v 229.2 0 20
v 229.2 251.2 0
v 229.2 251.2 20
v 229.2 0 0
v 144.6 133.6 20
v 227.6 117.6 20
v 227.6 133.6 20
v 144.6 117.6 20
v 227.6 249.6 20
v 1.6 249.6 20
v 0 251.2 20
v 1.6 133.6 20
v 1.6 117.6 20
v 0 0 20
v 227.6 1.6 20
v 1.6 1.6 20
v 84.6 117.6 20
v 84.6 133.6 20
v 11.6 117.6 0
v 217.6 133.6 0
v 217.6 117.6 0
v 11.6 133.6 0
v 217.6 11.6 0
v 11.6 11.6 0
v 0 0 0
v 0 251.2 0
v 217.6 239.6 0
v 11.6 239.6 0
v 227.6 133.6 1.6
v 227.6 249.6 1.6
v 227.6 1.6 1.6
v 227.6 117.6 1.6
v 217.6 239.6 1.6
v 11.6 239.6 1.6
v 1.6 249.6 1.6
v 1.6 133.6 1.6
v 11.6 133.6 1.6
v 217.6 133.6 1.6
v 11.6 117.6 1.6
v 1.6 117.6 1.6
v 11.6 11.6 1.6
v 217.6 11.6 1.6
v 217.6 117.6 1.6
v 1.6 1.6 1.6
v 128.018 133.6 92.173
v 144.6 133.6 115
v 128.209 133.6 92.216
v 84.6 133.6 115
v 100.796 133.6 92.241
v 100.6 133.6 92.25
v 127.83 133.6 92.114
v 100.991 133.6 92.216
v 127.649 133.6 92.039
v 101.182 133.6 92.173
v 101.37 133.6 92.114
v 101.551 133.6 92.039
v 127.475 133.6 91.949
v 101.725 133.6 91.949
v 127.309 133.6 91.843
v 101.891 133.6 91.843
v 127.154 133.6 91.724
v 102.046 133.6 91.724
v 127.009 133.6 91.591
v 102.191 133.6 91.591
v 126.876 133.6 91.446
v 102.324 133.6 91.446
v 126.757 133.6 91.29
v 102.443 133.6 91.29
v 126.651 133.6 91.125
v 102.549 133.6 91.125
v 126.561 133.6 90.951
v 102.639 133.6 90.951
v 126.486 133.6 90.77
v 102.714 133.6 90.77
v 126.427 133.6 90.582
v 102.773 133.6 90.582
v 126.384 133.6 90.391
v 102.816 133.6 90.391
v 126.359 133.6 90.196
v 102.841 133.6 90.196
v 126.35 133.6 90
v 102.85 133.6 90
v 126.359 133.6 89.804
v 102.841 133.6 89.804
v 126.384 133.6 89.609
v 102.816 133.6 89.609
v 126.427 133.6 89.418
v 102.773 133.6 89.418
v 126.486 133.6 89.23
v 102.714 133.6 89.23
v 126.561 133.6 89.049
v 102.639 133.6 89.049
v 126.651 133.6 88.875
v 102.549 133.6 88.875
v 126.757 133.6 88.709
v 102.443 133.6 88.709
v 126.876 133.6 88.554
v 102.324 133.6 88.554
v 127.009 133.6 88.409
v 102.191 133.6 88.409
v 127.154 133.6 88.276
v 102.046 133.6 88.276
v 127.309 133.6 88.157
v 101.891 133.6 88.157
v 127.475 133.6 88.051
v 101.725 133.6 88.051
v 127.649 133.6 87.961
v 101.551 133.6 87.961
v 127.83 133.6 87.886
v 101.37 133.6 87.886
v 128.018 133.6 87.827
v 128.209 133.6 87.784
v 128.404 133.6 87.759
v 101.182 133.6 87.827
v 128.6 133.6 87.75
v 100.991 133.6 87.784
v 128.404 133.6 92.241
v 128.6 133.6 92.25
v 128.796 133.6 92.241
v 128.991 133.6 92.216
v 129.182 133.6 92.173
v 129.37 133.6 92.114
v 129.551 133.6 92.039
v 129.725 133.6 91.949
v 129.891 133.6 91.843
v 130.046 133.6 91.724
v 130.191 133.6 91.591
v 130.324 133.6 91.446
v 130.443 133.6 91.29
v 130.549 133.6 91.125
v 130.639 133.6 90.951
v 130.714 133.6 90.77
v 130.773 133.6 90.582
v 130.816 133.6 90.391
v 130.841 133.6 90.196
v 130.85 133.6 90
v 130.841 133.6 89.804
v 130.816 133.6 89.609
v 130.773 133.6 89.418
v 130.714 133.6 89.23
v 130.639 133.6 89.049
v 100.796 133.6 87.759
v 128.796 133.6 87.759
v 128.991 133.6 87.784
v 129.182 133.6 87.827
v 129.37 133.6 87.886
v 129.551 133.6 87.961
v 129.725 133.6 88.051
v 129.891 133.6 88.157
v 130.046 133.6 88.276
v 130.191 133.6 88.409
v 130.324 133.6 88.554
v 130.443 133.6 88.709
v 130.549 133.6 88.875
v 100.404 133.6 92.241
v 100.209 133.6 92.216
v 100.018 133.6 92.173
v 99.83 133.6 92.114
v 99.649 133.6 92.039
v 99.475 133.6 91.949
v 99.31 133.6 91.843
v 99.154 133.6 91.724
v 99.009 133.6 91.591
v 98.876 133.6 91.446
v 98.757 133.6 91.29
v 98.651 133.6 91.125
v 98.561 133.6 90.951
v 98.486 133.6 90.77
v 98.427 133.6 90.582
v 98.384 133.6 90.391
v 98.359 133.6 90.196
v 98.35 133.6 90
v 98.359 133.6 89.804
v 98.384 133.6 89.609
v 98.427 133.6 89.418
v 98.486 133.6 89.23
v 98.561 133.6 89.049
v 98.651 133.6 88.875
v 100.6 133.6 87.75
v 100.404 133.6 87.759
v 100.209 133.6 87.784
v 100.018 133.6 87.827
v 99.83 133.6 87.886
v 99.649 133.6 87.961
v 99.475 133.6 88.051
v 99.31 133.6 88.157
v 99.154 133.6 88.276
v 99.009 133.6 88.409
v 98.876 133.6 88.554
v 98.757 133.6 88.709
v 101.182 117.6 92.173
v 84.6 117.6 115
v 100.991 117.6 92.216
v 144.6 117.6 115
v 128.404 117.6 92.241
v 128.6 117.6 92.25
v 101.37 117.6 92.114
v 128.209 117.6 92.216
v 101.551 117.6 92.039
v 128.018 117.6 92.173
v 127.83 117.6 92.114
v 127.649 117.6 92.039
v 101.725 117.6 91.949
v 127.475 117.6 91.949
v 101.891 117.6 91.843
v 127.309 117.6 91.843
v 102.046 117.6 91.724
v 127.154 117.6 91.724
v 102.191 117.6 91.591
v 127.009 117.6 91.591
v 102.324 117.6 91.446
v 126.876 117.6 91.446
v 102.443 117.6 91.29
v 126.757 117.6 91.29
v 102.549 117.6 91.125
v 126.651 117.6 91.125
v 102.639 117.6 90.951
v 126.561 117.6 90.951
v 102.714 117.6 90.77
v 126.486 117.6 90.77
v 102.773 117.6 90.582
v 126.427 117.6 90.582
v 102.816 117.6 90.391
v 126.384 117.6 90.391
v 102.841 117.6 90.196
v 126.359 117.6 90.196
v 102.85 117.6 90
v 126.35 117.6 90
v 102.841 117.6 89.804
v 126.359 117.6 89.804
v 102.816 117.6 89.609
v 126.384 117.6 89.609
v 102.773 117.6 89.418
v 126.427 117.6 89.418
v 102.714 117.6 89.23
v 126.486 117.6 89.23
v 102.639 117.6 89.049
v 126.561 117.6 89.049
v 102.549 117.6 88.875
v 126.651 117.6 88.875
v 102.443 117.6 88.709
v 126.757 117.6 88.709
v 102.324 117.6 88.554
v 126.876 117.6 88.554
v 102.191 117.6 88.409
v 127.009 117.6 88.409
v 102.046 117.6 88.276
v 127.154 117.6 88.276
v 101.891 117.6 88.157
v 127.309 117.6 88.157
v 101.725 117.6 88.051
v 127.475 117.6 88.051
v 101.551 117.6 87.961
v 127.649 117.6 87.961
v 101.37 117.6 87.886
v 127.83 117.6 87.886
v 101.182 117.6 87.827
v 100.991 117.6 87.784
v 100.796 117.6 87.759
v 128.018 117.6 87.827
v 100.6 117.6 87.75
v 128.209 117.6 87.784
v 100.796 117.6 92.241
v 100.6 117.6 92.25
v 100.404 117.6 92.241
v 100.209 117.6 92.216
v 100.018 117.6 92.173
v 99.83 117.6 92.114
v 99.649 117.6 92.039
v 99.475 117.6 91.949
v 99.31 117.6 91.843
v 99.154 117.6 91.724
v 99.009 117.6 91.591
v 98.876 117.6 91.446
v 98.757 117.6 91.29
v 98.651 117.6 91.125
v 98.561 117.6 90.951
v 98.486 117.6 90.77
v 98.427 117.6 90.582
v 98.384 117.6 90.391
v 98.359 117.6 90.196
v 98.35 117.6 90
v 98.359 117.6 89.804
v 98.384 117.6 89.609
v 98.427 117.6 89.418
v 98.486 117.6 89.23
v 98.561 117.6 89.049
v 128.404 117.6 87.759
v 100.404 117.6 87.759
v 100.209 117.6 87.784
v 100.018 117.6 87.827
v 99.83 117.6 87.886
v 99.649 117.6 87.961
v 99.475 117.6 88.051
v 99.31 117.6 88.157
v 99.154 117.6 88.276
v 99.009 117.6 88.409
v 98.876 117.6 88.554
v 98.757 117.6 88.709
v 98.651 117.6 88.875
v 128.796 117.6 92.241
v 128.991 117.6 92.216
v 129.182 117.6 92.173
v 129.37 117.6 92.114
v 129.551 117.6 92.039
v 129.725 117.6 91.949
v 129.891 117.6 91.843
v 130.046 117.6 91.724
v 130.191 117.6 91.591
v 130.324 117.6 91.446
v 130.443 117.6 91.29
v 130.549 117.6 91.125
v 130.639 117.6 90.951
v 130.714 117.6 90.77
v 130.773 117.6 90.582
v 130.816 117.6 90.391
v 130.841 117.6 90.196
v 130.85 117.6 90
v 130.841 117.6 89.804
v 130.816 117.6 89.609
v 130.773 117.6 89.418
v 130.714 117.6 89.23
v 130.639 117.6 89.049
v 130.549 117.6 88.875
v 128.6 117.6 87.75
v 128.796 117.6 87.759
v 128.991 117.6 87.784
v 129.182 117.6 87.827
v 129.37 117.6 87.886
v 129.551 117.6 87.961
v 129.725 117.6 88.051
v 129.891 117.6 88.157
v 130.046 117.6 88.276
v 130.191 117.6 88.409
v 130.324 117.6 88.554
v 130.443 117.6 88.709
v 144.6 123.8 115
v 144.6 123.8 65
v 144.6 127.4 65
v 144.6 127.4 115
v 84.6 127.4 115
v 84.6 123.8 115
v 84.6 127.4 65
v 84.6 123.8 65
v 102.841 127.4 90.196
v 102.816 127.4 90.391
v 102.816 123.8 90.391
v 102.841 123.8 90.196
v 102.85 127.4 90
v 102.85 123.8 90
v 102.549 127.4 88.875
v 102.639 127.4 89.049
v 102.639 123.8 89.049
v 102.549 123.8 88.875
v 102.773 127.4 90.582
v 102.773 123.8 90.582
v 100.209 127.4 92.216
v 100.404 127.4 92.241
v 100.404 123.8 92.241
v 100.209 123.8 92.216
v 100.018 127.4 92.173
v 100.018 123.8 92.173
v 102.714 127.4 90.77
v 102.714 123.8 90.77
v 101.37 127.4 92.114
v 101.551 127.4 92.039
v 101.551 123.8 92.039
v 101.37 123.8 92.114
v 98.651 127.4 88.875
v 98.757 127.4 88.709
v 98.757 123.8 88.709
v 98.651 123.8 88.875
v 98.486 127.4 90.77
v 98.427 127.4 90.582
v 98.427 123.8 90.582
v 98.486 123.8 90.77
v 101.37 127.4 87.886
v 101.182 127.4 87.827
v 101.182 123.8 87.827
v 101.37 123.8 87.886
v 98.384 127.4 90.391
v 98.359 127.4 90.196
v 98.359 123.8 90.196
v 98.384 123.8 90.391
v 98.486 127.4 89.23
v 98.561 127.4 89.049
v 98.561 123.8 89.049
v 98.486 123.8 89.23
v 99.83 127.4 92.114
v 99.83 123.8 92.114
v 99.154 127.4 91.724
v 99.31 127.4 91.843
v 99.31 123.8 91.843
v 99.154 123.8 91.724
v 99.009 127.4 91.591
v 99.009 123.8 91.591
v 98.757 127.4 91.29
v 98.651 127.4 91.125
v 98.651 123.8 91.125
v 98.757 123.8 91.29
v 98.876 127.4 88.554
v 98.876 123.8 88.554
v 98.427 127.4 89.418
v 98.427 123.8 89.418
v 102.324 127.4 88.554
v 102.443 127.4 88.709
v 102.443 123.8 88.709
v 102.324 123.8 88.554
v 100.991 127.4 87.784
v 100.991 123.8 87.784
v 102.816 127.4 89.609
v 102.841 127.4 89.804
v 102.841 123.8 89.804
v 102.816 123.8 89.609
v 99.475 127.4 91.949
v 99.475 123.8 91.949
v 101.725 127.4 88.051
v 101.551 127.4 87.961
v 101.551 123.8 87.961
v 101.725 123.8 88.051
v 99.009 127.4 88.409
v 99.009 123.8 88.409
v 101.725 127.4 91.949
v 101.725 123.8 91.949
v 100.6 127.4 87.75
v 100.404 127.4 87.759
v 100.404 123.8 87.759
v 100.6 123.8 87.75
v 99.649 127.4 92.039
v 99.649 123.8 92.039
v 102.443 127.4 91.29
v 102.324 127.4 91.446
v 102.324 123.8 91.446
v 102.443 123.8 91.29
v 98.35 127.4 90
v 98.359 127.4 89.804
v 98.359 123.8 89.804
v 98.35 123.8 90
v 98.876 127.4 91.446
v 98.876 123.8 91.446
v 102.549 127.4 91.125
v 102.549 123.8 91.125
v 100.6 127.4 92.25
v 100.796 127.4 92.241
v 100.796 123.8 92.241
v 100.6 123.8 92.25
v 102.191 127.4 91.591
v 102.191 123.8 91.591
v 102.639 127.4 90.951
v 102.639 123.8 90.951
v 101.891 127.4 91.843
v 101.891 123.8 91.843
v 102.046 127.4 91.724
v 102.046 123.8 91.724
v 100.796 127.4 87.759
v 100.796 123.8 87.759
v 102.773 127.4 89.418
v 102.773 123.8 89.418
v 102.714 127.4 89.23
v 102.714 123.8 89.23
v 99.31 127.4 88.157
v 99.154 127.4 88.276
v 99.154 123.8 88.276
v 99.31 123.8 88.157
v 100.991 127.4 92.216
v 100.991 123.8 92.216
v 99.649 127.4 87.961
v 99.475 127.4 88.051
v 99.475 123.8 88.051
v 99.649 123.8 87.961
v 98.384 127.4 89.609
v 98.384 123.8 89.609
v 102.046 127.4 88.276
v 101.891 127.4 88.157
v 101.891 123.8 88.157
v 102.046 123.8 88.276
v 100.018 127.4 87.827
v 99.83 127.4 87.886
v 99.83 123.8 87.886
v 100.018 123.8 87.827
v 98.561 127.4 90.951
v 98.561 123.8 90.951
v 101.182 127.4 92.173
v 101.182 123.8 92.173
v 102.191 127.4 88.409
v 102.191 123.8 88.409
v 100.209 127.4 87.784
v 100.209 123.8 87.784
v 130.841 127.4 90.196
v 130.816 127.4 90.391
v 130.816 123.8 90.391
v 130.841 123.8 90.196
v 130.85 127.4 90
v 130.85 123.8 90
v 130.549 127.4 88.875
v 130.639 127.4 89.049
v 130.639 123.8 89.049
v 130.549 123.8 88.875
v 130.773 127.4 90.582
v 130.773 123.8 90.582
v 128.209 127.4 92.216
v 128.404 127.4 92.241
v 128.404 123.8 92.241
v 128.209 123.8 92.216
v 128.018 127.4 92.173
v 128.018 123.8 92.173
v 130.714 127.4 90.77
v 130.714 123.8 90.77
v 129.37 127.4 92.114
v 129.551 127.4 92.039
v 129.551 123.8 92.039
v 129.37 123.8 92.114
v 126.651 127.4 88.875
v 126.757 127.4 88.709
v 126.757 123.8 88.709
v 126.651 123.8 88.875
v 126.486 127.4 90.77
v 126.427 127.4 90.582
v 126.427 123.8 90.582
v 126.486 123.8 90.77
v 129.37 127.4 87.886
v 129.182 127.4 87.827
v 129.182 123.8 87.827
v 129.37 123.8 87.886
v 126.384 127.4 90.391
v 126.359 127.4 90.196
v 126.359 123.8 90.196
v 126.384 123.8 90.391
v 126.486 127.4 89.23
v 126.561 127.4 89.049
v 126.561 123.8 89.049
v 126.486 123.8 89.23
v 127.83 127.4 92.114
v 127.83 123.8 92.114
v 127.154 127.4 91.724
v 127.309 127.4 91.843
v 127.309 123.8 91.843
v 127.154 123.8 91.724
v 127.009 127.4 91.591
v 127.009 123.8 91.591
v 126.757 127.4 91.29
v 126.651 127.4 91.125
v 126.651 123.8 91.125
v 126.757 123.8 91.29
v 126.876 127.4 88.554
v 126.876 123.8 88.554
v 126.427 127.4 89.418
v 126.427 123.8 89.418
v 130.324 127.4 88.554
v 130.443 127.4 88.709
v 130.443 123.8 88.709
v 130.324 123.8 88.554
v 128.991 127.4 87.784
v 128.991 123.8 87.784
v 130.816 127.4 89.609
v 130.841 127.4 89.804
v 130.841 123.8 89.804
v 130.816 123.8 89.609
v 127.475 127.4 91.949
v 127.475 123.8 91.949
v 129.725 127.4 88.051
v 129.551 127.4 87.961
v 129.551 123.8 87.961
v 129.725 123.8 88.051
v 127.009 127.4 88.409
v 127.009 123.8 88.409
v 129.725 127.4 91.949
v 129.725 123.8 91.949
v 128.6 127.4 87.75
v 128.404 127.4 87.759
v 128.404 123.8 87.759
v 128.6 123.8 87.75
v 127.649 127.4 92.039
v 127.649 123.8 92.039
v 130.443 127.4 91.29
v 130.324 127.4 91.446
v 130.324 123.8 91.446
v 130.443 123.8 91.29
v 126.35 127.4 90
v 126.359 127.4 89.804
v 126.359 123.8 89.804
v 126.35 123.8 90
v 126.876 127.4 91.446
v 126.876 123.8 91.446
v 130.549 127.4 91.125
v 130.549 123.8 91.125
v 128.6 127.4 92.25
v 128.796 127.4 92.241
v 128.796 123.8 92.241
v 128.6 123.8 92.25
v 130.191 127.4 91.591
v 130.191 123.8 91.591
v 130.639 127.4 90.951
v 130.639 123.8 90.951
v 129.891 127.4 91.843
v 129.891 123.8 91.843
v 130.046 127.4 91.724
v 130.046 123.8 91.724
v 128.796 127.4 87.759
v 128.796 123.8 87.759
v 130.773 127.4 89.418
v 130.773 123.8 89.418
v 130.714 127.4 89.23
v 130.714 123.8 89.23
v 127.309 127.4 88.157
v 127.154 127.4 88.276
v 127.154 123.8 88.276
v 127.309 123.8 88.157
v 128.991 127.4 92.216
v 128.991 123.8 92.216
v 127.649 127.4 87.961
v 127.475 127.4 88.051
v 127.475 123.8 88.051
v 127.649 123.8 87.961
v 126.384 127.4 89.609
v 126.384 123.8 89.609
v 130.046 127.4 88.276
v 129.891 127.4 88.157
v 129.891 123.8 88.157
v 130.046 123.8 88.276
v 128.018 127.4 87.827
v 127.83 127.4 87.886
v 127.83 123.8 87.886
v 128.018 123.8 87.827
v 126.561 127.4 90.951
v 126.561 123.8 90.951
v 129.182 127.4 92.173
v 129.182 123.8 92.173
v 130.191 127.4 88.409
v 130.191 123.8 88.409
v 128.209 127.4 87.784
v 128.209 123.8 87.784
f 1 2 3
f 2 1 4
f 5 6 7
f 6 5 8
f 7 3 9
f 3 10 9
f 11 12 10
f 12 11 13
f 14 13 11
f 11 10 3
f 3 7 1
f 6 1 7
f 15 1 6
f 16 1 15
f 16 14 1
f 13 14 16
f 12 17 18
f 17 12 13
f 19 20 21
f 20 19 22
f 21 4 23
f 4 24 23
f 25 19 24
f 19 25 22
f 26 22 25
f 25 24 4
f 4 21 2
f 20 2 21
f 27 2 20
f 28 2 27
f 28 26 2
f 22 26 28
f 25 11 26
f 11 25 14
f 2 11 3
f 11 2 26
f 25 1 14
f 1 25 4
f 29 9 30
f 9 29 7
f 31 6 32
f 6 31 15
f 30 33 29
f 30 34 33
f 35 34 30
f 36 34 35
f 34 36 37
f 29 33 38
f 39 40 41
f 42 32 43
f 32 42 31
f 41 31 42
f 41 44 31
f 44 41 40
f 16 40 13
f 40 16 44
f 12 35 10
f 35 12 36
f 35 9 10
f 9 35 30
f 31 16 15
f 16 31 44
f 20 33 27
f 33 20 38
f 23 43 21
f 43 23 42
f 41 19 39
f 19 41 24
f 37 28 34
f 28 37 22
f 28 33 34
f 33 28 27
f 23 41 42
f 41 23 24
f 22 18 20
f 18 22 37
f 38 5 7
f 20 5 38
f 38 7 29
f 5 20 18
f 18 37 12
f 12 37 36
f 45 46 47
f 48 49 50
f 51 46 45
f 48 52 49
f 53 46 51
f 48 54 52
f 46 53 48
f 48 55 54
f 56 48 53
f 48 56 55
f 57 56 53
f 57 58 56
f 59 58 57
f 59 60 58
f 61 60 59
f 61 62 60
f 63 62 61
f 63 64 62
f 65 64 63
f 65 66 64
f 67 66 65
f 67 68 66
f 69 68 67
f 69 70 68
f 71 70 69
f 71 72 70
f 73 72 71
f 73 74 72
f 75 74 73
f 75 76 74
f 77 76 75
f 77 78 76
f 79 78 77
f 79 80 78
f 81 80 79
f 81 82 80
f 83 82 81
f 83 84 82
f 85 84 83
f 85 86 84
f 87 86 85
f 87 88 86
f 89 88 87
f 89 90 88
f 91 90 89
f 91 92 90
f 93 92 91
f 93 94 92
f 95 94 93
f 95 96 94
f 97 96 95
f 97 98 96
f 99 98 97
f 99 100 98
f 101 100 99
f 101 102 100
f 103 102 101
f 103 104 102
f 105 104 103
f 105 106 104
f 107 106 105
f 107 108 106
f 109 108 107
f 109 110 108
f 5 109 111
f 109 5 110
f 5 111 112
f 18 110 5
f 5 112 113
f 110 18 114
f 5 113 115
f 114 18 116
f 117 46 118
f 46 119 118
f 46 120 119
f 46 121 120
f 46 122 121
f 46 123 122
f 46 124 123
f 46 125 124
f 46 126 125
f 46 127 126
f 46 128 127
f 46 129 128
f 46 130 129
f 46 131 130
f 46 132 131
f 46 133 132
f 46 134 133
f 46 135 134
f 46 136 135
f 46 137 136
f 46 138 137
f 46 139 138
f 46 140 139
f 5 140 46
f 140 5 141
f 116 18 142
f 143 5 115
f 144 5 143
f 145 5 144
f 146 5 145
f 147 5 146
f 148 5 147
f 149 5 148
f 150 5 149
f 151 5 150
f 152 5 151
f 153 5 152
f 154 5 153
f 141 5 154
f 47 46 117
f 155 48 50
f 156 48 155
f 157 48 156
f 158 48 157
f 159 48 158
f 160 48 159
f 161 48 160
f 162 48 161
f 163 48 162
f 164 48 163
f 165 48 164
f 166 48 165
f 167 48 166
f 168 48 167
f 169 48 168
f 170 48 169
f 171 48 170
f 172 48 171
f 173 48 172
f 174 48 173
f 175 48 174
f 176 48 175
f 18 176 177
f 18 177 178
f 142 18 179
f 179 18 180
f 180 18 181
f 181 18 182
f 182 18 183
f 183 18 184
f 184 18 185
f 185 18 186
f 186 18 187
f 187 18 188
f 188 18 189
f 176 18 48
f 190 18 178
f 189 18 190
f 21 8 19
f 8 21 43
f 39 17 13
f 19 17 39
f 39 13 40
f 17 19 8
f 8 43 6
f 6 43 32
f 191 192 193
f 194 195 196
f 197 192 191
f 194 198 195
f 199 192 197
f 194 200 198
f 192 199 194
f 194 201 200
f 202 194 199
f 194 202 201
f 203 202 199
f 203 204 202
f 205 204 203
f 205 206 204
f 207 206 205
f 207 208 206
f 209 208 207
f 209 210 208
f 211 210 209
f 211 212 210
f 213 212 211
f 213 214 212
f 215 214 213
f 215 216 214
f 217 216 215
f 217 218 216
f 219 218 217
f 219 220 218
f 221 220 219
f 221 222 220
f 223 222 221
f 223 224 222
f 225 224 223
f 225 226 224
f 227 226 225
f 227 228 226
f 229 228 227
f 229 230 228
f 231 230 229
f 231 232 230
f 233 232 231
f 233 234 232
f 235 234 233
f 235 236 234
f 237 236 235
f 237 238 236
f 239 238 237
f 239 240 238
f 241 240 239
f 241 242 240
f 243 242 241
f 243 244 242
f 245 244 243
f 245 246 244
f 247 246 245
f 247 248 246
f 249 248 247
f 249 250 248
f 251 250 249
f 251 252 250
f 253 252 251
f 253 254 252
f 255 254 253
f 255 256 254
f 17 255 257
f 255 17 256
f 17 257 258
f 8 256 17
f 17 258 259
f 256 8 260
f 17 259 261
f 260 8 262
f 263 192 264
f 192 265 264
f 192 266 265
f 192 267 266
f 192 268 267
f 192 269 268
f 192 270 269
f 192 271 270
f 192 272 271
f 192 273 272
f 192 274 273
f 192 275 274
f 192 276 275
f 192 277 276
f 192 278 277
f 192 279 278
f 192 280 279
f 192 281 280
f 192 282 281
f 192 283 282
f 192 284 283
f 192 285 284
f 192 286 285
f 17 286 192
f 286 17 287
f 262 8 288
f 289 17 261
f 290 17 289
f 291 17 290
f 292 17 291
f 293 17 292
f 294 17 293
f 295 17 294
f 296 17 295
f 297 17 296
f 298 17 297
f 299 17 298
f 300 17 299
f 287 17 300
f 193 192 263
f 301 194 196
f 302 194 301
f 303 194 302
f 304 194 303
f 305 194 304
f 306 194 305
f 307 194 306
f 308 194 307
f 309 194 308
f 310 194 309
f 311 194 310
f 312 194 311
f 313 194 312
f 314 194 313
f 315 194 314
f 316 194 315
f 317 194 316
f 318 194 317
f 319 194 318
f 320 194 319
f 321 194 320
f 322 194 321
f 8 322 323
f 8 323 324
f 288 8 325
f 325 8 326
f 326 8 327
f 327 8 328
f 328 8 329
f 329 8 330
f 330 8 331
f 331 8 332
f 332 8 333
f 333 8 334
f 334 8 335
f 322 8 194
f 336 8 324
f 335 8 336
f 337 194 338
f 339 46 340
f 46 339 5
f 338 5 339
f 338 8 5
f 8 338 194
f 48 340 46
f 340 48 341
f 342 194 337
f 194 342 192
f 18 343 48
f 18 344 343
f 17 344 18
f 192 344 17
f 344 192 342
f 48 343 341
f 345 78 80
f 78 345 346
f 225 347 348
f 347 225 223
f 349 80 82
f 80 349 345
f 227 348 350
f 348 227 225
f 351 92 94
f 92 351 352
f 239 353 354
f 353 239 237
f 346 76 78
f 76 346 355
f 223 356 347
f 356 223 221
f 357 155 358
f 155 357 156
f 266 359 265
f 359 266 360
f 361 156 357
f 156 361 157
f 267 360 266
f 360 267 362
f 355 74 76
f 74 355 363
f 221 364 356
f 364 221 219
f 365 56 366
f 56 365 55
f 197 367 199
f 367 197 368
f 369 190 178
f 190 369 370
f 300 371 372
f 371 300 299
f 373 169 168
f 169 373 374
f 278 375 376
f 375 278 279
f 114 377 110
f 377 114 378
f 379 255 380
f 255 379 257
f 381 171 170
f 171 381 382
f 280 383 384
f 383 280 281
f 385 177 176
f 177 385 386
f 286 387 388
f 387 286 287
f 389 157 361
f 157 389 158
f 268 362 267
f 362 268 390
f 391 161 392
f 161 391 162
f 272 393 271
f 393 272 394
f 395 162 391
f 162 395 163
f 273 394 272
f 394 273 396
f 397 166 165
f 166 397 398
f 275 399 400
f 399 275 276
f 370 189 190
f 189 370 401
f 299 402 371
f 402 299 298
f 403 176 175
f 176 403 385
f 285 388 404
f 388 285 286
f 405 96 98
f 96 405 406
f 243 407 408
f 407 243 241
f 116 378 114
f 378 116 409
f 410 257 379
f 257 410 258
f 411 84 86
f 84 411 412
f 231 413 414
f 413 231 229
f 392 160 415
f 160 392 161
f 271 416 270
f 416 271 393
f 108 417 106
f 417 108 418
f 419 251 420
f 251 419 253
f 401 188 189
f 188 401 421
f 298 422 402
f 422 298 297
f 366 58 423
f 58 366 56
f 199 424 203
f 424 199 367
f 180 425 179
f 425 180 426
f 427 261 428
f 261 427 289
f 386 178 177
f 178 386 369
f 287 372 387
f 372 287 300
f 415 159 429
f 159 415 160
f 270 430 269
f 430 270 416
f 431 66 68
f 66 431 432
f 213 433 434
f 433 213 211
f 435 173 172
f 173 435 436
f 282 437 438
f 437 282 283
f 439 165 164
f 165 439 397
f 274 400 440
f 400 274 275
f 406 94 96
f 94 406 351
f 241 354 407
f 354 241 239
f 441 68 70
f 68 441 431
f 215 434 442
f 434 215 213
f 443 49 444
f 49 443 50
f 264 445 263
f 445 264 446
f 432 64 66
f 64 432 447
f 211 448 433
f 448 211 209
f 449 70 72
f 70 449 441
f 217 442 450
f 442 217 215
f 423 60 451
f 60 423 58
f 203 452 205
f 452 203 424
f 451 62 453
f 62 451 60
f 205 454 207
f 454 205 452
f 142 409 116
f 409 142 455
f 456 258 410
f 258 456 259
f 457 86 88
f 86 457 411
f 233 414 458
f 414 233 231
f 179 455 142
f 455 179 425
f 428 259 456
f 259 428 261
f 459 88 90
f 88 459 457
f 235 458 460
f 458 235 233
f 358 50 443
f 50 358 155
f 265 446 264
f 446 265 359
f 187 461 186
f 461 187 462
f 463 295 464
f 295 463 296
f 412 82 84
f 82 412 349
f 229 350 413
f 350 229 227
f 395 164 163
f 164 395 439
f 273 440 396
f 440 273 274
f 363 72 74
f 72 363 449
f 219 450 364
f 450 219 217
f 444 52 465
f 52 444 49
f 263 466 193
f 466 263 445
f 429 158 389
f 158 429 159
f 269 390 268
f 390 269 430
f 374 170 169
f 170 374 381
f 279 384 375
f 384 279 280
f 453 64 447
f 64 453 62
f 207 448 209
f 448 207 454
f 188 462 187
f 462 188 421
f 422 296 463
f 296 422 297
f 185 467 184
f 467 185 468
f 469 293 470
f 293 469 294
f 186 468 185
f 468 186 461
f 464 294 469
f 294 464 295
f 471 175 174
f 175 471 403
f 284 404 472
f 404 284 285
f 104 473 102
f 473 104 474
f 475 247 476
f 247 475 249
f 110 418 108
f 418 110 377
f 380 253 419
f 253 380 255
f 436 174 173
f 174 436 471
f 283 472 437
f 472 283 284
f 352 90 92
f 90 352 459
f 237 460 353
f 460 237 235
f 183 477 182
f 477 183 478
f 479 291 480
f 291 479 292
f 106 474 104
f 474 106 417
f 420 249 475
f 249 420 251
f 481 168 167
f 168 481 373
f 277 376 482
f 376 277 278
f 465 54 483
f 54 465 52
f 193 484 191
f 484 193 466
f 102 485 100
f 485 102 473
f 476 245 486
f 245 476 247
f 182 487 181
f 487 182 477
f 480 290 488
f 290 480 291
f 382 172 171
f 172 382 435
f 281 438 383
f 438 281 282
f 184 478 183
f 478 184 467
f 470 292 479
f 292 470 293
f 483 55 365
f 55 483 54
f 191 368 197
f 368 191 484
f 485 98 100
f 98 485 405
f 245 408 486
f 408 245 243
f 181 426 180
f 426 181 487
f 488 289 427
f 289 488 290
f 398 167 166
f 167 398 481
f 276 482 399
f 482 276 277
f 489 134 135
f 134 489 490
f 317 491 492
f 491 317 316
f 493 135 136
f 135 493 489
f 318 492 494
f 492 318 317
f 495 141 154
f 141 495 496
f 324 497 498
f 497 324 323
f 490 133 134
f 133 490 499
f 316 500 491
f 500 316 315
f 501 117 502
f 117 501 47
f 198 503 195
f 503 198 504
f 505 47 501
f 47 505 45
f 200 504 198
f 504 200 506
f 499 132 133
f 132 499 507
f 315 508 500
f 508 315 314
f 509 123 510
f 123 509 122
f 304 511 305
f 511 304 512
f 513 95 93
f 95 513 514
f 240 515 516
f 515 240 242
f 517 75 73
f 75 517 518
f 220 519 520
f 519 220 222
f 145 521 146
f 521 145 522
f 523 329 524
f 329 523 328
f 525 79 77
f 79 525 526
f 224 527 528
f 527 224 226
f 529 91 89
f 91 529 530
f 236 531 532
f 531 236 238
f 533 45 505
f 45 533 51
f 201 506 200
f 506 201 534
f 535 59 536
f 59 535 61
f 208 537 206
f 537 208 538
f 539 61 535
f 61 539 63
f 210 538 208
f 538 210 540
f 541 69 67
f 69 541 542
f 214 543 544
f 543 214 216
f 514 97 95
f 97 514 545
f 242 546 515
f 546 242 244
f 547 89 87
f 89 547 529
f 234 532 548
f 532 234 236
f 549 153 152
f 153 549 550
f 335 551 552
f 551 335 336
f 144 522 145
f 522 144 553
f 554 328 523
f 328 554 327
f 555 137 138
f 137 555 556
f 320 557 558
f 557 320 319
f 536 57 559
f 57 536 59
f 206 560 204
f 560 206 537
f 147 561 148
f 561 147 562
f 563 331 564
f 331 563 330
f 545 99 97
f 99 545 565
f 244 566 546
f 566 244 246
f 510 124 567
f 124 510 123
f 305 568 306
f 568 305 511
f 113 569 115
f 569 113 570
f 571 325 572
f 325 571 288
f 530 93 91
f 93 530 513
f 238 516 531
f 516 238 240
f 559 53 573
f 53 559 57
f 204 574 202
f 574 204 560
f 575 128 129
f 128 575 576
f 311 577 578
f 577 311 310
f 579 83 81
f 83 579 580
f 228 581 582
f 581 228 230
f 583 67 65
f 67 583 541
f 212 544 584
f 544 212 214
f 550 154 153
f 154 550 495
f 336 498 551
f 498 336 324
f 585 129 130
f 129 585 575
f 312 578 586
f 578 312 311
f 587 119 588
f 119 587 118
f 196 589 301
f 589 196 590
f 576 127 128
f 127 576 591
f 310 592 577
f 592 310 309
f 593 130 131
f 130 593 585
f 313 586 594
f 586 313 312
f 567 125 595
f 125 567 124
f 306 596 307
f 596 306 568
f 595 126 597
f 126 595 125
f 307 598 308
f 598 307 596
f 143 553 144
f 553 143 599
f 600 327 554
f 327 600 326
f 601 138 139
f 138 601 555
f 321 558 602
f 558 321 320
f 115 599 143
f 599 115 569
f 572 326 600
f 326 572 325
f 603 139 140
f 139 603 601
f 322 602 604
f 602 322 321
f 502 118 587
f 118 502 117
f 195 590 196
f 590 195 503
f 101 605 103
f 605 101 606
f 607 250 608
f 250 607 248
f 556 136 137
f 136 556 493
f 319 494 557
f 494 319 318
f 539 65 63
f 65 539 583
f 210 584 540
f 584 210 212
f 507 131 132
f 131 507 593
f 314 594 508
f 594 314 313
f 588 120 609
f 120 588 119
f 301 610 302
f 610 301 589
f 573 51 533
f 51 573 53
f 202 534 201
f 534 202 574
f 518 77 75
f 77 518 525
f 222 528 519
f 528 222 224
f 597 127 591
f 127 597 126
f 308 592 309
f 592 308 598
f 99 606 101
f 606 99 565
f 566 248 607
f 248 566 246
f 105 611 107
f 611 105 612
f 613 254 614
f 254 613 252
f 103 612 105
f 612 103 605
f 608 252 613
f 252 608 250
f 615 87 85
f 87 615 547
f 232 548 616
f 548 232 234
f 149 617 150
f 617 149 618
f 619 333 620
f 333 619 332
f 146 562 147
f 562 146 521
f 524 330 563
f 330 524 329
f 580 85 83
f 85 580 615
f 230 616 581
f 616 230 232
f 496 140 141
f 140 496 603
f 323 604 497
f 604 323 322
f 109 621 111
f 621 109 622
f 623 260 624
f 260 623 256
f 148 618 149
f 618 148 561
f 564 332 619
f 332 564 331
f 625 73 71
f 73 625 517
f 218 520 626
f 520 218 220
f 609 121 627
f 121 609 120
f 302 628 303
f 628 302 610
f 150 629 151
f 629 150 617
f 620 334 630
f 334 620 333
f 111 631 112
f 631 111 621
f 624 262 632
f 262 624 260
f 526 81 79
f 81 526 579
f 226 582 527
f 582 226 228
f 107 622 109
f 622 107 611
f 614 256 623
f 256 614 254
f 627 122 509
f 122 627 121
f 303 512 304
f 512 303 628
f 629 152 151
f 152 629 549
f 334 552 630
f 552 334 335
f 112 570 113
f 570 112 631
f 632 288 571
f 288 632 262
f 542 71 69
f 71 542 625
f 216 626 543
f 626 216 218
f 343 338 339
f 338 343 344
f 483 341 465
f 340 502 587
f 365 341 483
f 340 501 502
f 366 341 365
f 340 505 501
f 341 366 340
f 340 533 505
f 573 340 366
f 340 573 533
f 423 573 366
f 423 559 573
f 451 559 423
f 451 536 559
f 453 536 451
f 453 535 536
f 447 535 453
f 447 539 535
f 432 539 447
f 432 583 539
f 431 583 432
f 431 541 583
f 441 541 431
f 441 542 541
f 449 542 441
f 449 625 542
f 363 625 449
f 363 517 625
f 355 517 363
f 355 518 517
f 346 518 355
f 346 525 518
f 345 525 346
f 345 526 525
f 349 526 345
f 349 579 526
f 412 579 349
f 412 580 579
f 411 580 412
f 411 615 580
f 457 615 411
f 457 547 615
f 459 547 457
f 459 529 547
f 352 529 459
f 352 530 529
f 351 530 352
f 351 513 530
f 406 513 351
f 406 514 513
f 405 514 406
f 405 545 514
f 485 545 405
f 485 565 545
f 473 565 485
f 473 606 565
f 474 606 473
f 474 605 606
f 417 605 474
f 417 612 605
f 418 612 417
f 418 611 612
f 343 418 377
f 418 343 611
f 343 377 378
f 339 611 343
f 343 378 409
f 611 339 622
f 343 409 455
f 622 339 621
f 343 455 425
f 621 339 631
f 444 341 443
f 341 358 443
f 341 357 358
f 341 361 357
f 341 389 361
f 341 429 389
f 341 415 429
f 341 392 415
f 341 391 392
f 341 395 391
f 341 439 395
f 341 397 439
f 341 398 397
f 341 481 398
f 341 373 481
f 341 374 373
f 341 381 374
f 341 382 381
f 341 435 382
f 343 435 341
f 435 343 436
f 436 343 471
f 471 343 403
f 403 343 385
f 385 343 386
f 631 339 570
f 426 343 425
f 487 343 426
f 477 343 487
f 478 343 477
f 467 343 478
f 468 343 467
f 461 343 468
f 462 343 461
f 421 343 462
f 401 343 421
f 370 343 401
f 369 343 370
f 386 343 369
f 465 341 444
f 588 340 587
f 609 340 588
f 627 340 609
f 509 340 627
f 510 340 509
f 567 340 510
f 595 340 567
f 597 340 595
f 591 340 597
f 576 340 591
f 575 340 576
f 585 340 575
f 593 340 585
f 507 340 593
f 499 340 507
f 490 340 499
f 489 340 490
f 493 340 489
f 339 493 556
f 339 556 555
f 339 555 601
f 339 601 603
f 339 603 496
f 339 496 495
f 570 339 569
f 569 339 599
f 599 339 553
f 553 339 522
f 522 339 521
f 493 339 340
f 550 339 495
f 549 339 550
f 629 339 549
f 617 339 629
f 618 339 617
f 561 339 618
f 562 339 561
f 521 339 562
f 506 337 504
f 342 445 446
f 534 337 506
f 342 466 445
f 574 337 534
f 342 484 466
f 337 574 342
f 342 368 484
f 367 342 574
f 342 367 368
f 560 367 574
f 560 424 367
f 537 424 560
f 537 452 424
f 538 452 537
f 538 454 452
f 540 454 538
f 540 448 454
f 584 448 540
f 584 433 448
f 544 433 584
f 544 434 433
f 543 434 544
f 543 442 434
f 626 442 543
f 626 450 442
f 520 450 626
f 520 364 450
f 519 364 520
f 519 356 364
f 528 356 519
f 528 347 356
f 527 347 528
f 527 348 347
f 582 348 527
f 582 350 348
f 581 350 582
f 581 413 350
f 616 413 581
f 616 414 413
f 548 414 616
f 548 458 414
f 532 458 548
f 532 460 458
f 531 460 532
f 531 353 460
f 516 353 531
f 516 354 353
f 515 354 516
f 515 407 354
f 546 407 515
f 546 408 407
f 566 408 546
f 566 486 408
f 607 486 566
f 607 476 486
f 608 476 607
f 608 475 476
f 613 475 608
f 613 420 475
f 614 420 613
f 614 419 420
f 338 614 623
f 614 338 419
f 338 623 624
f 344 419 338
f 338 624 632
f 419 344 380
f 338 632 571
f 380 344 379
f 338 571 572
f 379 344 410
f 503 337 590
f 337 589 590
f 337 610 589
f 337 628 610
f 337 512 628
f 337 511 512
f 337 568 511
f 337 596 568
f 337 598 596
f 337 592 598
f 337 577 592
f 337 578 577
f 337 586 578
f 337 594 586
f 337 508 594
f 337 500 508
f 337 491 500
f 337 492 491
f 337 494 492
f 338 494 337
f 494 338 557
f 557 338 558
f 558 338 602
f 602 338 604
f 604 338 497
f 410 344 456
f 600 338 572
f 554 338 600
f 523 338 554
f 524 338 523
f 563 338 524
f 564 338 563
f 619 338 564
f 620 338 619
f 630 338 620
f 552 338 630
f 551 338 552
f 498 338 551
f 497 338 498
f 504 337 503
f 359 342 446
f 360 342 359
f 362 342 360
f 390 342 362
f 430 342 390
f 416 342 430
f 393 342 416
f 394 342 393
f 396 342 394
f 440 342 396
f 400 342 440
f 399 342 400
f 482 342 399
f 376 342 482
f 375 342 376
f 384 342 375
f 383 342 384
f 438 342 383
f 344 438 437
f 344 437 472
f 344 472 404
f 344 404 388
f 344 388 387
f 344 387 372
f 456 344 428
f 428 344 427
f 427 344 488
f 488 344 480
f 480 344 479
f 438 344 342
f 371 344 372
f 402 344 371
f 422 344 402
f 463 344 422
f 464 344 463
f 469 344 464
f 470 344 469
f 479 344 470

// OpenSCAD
// file: lib.scad
// Shared pieces for the Winterlight PETG parts (Bambu Lab A1, 256 × 256 × 256 mm).
// Millimetres. Measure your own mounting strip and set strip_w / strip_t on the
// command line (-D strip_w=20) or in OpenSCAD's Customizer before printing.
$fn = 72;
strip_w = 30;   // pixel mounting strip width
strip_t = 1.54; // pixel mounting strip thickness (measured)
clr = 0.4;      // clearance per side, a snug slide fit in PETG
wall = 3;       // channel walls
tie_d = 4.5;    // holes for the 2.5 mm cable ties or an M4 bolt

// Closed slots the strip slides through (the ground strip's posts).
slot_t = strip_t + 2*clr;
slot_w = strip_w + 2*clr;
// Open pockets the strip ends sit in (mini trees, tree hub and ring): a close
// fit across, and a little shallower than the strip, so the strip stands
// proud of the face and the cable tie clamps it down.
proud = 0.3;
pocket_t = strip_t - proud;
pocket_w = strip_w + 2*0.2;
// Outside size of a strip channel: radial depth and tangential width.
ch_depth = pocket_t + wall;
ch_width = pocket_w + 2*wall;

// A channel that holds a strip's end: the strip runs up +Z with its face
// (and its pixels) towards +X. Open on the +X side so the strip drops in,
// with a groove round the outside where a cable tie pulls it home.
module channel(h, floor = 3) {
  z0 = h*0.55;
  difference() {
    translate([-ch_depth, -ch_width/2, 0]) cube([ch_depth, ch_width, h]);
    translate([-pocket_t, -pocket_w/2, floor]) cube([pocket_t + 1, pocket_w, h]);
    // Tie groove, 1 mm deep, round the back and both sides.
    difference() {
      translate([-ch_depth - 1, -ch_width/2 - 1, z0]) cube([ch_depth + 2, ch_width + 2, 5]);
      translate([-ch_depth + 1, -ch_width/2 + 1, z0 - 1]) cube([ch_depth + 2, ch_width - 2, 7]);
    }
  }
}

// n channels on a circle of radius r (the strip's face), leaning by tilt
// degrees: positive leans the top inwards, negative outwards.
module channel_ring(n, r, tilt, h, start = 0) {
  intersection() {
    for (i = [0 : n - 1]) rotate([0, 0, start + 360*i/n])
      translate([r, 0, 0]) rotate([0, -tilt, 0]) channel(h);
    translate([-1000, -1000, 0]) cube([2000, 2000, 1000]);
  }
}

// A flat ring with spokes to a centre boss: the plate that ties the channels together.
module spoked_ring(r_out, r_in, t, n, boss_d, arm_w = 8) {
  difference() { cylinder(r = r_out, h = t); translate([0, 0, -1]) cylinder(r = r_in, h = t + 2); }
  for (i = [0 : n - 1]) rotate([0, 0, 360*i/n + 180/n]) translate([0, -arm_w/2, 0]) cube([r_in + 1, arm_w, t]);
  cylinder(d = boss_d, h = t);
}

// Bricks for ballast: the paving in front of the house is stone, so nothing
// can be staked into it. The feet are trays that hold standard concrete paving
// bricks (betonklinkers, 22 × 11 × 8 cm, about 4 kg each). Set your own size.
brick_l = 220;
brick_w = 110;
brick_h = 80;
brick_clr = 3;      // bricks vary a few millimetres
tray_wall = 1.6;
tray_h = 20;
tray_lip = 10;      // the floor is only a ledge round the edge, to save PETG
tray_floor = 1.6;

// A tray for n bricks side by side along Y, its corner at the origin.
// gap: extra room between the bricks (for a rib); returns nothing, see tray_size.
function tray_inner(n = 1, gap = 0) = [brick_l + 2*brick_clr, n*(brick_w + 2*brick_clr) + gap];
module tray(n = 1, gap = 0) {
  in = tray_inner(n, gap);
  out = [in[0] + 2*tray_wall, in[1] + 2*tray_wall];
  difference() {
    cube([out[0], out[1], tray_h]);
    translate([tray_wall, tray_wall, tray_floor]) cube([in[0], in[1], tray_h]);
    translate([tray_wall + tray_lip, tray_wall + tray_lip, -1]) cube([in[0] - 2*tray_lip, in[1] - 2*tray_lip, tray_floor + 2]);
  }
}
// main file
// Candy cane base: a tray for two paving bricks with a rib between them. The
// bottom of the cane's coro stem drops into the slot in the rib; drill the coro
// through the two holes and tie it. About 8 kg of brick keeps the cane up in
// the wind. Print as is, no supports.
include <lib.scad>
coro_t = 3;
rib = 16;
rib_l = 60;        // the slot block; a low divider runs the rest of the way
rib_h = brick_h + 35;
slot = coro_t + 0.6;
slot_depth = 50;
in = tray_inner(2, rib);
out = [in[0] + 2*tray_wall, in[1] + 2*tray_wall];

difference() {
  union() {
    tray(2, rib);
    translate([0, out[1]/2 - rib/2, 0]) cube([out[0], rib, tray_h]);
    translate([out[0]/2 - rib_l/2, out[1]/2 - rib/2, 0]) cube([rib_l, rib, rib_h]);
  }
  translate([-1, out[1]/2 - slot/2, rib_h - slot_depth]) cube([out[0] + 2, slot, slot_depth + 1]);
  for (x = [out[0]/2 - 14, out[0]/2 + 14]) translate([x, out[1]/2, rib_h - slot_depth/2]) rotate([90, 0, 0]) cylinder(d = tie_d, h = rib + 2, center = true);
}
